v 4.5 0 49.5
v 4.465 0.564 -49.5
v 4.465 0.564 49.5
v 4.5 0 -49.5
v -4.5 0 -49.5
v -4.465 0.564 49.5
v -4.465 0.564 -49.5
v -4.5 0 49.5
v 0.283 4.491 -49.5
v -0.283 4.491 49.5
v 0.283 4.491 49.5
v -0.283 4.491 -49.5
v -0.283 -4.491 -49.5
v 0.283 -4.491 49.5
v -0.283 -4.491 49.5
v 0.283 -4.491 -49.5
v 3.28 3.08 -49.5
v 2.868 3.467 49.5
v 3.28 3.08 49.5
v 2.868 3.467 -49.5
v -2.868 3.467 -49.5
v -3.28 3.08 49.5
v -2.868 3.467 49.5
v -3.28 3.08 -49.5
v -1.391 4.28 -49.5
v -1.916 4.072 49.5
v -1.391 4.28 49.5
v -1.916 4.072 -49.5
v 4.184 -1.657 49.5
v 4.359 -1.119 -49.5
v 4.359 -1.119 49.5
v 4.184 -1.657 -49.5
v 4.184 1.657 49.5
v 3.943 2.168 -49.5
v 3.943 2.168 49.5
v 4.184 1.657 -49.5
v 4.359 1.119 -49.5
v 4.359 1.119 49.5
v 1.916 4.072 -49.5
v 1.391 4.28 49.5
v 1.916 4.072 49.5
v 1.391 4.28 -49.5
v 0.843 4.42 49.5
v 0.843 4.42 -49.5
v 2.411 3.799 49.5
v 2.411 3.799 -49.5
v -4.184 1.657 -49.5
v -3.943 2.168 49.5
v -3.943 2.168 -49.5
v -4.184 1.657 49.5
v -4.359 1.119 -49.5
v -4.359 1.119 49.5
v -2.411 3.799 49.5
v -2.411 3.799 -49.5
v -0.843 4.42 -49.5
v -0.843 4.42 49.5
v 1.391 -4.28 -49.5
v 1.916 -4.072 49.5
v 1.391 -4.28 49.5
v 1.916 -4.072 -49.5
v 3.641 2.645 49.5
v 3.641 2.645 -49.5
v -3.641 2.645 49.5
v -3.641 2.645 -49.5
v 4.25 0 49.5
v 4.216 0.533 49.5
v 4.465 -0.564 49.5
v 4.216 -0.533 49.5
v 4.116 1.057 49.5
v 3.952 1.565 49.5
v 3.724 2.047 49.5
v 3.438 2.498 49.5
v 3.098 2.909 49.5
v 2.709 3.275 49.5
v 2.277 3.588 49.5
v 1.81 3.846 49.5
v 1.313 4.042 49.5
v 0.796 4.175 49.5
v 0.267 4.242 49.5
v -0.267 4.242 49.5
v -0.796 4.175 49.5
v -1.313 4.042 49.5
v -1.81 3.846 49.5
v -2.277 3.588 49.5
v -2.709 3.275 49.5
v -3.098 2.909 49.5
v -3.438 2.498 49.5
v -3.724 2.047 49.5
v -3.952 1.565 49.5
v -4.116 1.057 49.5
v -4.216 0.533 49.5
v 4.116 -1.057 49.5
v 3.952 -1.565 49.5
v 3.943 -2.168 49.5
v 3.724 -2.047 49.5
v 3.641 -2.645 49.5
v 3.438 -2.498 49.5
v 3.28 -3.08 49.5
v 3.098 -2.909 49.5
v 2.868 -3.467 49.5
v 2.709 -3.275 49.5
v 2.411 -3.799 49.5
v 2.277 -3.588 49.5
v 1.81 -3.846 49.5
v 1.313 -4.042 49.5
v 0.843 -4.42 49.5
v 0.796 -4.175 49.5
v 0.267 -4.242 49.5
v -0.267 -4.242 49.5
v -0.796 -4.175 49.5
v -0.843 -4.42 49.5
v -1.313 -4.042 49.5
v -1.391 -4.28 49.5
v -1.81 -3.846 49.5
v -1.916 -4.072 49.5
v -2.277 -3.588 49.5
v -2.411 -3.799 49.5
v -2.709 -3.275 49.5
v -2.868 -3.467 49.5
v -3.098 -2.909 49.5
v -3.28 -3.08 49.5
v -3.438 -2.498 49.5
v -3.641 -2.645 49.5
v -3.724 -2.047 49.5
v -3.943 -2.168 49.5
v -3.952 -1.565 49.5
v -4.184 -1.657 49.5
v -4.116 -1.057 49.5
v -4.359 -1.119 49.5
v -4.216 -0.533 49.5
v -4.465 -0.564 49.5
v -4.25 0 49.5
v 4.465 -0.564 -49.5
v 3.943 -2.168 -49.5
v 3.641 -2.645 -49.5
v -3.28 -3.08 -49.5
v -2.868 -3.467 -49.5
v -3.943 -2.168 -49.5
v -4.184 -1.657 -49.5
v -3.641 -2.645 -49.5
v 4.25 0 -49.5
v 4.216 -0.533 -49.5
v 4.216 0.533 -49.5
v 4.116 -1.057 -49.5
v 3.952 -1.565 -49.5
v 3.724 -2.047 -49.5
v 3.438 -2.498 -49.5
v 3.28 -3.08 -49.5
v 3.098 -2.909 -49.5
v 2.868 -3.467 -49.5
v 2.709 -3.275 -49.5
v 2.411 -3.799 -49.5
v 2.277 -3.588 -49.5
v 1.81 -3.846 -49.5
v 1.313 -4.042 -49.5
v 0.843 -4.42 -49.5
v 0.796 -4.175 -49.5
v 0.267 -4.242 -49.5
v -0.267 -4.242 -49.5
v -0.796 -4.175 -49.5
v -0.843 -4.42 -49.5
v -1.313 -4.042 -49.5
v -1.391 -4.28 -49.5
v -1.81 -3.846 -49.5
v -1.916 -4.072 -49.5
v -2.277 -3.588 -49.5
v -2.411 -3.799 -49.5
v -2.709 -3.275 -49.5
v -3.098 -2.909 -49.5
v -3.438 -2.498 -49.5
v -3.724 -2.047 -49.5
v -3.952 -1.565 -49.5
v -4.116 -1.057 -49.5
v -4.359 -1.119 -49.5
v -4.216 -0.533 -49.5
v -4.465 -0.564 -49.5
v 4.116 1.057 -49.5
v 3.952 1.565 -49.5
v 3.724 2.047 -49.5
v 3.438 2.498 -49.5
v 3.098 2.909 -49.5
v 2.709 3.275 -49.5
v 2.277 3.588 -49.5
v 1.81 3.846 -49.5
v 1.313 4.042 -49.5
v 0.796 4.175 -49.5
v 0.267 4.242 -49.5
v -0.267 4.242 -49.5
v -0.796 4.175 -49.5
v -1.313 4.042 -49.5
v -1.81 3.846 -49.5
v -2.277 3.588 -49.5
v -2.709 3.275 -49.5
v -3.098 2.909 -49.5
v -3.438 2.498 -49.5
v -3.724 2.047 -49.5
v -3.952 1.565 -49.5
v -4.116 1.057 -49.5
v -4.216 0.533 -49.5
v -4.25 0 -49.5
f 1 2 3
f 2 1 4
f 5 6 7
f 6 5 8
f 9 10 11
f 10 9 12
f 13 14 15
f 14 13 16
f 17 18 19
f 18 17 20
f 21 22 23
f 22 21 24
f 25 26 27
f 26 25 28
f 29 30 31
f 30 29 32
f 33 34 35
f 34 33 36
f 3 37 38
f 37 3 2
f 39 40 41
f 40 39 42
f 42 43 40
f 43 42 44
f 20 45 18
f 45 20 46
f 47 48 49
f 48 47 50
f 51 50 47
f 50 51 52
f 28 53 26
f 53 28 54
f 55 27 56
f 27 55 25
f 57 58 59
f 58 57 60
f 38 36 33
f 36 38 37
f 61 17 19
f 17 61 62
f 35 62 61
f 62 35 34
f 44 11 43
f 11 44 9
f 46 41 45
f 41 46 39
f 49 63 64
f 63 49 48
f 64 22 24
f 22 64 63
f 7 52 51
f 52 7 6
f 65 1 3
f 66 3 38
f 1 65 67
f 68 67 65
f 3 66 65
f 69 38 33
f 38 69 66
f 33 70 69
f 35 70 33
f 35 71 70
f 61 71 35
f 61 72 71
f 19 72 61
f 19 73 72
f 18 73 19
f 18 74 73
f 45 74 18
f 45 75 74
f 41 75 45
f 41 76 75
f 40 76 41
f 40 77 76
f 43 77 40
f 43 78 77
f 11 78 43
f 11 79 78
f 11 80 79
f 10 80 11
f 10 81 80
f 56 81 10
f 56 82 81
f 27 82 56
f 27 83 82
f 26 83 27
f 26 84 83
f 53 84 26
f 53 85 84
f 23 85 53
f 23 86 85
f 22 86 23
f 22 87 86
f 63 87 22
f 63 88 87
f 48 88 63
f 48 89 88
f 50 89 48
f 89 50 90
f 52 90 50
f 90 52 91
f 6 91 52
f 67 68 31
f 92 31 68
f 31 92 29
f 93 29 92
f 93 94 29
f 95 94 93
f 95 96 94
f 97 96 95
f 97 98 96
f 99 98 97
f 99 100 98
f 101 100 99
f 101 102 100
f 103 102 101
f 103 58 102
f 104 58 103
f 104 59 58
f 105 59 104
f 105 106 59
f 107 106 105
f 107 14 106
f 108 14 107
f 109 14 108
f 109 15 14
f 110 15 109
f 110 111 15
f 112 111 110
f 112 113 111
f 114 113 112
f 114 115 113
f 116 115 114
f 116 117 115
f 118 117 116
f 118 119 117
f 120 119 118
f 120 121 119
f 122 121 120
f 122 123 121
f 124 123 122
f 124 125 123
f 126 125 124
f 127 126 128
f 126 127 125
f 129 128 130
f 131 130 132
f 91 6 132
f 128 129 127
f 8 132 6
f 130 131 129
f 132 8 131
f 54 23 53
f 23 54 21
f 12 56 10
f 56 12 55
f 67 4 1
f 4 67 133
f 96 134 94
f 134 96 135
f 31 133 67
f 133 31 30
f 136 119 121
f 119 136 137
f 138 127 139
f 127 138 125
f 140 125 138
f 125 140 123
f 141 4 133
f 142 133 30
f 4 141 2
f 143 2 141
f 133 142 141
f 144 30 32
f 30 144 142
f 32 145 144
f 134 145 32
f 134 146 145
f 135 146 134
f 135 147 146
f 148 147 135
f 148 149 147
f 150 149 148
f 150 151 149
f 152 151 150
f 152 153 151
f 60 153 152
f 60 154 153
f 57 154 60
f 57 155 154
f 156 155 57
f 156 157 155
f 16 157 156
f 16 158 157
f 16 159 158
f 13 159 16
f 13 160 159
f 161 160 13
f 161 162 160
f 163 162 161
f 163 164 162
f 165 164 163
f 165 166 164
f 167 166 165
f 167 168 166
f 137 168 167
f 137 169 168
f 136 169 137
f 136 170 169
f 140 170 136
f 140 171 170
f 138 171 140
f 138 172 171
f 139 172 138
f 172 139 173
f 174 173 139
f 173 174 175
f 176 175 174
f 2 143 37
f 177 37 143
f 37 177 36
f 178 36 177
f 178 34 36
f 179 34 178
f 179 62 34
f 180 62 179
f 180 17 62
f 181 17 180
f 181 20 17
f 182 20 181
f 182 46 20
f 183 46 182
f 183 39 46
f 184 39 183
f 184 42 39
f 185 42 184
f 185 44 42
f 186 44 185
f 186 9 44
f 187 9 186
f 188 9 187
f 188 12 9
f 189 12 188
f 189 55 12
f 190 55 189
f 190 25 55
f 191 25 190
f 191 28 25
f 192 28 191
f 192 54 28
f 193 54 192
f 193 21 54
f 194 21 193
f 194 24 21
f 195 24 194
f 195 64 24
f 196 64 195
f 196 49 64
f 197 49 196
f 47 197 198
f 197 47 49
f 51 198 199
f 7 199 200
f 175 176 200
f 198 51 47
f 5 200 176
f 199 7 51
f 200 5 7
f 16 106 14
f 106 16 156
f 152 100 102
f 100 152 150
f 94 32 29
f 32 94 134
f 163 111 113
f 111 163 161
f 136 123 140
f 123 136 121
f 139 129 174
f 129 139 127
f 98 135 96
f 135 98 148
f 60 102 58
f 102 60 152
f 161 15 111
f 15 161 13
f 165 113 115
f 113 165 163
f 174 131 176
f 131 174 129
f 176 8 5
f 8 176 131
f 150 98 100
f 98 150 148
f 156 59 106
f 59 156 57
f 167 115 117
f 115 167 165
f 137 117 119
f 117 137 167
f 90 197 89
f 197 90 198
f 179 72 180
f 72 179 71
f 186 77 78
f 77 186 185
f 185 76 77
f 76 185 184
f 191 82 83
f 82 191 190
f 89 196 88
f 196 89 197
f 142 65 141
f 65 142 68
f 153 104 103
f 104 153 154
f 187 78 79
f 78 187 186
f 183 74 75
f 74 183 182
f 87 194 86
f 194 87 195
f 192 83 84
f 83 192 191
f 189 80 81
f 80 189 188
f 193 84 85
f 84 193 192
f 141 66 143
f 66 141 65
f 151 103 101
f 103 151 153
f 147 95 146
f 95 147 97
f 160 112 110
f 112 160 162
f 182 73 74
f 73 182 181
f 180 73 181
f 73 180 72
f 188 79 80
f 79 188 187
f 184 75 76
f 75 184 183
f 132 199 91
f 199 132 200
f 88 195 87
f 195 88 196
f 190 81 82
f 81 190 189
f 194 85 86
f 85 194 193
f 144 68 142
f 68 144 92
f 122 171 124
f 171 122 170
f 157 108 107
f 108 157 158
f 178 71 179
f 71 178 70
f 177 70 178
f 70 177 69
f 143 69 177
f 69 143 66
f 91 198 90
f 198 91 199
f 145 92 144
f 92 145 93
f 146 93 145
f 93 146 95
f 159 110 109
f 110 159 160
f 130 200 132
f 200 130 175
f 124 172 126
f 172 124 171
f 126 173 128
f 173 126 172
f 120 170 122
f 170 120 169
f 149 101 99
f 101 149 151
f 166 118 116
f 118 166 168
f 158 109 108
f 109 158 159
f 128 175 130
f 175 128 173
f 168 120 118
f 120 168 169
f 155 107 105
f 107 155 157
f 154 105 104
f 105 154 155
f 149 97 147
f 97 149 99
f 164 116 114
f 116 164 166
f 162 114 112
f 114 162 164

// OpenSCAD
$fn = 50;


difference() {
	union() {
		translate(v = [0, 0, -49.5000000000]) {
			cylinder(h = 99, r = 4.5000000000);
		}
	}
	union() {
		translate(v = [0, 0, -100.0000000000]) {
			cylinder(h = 200, r = 4.2500000000);
		}
	}
}
